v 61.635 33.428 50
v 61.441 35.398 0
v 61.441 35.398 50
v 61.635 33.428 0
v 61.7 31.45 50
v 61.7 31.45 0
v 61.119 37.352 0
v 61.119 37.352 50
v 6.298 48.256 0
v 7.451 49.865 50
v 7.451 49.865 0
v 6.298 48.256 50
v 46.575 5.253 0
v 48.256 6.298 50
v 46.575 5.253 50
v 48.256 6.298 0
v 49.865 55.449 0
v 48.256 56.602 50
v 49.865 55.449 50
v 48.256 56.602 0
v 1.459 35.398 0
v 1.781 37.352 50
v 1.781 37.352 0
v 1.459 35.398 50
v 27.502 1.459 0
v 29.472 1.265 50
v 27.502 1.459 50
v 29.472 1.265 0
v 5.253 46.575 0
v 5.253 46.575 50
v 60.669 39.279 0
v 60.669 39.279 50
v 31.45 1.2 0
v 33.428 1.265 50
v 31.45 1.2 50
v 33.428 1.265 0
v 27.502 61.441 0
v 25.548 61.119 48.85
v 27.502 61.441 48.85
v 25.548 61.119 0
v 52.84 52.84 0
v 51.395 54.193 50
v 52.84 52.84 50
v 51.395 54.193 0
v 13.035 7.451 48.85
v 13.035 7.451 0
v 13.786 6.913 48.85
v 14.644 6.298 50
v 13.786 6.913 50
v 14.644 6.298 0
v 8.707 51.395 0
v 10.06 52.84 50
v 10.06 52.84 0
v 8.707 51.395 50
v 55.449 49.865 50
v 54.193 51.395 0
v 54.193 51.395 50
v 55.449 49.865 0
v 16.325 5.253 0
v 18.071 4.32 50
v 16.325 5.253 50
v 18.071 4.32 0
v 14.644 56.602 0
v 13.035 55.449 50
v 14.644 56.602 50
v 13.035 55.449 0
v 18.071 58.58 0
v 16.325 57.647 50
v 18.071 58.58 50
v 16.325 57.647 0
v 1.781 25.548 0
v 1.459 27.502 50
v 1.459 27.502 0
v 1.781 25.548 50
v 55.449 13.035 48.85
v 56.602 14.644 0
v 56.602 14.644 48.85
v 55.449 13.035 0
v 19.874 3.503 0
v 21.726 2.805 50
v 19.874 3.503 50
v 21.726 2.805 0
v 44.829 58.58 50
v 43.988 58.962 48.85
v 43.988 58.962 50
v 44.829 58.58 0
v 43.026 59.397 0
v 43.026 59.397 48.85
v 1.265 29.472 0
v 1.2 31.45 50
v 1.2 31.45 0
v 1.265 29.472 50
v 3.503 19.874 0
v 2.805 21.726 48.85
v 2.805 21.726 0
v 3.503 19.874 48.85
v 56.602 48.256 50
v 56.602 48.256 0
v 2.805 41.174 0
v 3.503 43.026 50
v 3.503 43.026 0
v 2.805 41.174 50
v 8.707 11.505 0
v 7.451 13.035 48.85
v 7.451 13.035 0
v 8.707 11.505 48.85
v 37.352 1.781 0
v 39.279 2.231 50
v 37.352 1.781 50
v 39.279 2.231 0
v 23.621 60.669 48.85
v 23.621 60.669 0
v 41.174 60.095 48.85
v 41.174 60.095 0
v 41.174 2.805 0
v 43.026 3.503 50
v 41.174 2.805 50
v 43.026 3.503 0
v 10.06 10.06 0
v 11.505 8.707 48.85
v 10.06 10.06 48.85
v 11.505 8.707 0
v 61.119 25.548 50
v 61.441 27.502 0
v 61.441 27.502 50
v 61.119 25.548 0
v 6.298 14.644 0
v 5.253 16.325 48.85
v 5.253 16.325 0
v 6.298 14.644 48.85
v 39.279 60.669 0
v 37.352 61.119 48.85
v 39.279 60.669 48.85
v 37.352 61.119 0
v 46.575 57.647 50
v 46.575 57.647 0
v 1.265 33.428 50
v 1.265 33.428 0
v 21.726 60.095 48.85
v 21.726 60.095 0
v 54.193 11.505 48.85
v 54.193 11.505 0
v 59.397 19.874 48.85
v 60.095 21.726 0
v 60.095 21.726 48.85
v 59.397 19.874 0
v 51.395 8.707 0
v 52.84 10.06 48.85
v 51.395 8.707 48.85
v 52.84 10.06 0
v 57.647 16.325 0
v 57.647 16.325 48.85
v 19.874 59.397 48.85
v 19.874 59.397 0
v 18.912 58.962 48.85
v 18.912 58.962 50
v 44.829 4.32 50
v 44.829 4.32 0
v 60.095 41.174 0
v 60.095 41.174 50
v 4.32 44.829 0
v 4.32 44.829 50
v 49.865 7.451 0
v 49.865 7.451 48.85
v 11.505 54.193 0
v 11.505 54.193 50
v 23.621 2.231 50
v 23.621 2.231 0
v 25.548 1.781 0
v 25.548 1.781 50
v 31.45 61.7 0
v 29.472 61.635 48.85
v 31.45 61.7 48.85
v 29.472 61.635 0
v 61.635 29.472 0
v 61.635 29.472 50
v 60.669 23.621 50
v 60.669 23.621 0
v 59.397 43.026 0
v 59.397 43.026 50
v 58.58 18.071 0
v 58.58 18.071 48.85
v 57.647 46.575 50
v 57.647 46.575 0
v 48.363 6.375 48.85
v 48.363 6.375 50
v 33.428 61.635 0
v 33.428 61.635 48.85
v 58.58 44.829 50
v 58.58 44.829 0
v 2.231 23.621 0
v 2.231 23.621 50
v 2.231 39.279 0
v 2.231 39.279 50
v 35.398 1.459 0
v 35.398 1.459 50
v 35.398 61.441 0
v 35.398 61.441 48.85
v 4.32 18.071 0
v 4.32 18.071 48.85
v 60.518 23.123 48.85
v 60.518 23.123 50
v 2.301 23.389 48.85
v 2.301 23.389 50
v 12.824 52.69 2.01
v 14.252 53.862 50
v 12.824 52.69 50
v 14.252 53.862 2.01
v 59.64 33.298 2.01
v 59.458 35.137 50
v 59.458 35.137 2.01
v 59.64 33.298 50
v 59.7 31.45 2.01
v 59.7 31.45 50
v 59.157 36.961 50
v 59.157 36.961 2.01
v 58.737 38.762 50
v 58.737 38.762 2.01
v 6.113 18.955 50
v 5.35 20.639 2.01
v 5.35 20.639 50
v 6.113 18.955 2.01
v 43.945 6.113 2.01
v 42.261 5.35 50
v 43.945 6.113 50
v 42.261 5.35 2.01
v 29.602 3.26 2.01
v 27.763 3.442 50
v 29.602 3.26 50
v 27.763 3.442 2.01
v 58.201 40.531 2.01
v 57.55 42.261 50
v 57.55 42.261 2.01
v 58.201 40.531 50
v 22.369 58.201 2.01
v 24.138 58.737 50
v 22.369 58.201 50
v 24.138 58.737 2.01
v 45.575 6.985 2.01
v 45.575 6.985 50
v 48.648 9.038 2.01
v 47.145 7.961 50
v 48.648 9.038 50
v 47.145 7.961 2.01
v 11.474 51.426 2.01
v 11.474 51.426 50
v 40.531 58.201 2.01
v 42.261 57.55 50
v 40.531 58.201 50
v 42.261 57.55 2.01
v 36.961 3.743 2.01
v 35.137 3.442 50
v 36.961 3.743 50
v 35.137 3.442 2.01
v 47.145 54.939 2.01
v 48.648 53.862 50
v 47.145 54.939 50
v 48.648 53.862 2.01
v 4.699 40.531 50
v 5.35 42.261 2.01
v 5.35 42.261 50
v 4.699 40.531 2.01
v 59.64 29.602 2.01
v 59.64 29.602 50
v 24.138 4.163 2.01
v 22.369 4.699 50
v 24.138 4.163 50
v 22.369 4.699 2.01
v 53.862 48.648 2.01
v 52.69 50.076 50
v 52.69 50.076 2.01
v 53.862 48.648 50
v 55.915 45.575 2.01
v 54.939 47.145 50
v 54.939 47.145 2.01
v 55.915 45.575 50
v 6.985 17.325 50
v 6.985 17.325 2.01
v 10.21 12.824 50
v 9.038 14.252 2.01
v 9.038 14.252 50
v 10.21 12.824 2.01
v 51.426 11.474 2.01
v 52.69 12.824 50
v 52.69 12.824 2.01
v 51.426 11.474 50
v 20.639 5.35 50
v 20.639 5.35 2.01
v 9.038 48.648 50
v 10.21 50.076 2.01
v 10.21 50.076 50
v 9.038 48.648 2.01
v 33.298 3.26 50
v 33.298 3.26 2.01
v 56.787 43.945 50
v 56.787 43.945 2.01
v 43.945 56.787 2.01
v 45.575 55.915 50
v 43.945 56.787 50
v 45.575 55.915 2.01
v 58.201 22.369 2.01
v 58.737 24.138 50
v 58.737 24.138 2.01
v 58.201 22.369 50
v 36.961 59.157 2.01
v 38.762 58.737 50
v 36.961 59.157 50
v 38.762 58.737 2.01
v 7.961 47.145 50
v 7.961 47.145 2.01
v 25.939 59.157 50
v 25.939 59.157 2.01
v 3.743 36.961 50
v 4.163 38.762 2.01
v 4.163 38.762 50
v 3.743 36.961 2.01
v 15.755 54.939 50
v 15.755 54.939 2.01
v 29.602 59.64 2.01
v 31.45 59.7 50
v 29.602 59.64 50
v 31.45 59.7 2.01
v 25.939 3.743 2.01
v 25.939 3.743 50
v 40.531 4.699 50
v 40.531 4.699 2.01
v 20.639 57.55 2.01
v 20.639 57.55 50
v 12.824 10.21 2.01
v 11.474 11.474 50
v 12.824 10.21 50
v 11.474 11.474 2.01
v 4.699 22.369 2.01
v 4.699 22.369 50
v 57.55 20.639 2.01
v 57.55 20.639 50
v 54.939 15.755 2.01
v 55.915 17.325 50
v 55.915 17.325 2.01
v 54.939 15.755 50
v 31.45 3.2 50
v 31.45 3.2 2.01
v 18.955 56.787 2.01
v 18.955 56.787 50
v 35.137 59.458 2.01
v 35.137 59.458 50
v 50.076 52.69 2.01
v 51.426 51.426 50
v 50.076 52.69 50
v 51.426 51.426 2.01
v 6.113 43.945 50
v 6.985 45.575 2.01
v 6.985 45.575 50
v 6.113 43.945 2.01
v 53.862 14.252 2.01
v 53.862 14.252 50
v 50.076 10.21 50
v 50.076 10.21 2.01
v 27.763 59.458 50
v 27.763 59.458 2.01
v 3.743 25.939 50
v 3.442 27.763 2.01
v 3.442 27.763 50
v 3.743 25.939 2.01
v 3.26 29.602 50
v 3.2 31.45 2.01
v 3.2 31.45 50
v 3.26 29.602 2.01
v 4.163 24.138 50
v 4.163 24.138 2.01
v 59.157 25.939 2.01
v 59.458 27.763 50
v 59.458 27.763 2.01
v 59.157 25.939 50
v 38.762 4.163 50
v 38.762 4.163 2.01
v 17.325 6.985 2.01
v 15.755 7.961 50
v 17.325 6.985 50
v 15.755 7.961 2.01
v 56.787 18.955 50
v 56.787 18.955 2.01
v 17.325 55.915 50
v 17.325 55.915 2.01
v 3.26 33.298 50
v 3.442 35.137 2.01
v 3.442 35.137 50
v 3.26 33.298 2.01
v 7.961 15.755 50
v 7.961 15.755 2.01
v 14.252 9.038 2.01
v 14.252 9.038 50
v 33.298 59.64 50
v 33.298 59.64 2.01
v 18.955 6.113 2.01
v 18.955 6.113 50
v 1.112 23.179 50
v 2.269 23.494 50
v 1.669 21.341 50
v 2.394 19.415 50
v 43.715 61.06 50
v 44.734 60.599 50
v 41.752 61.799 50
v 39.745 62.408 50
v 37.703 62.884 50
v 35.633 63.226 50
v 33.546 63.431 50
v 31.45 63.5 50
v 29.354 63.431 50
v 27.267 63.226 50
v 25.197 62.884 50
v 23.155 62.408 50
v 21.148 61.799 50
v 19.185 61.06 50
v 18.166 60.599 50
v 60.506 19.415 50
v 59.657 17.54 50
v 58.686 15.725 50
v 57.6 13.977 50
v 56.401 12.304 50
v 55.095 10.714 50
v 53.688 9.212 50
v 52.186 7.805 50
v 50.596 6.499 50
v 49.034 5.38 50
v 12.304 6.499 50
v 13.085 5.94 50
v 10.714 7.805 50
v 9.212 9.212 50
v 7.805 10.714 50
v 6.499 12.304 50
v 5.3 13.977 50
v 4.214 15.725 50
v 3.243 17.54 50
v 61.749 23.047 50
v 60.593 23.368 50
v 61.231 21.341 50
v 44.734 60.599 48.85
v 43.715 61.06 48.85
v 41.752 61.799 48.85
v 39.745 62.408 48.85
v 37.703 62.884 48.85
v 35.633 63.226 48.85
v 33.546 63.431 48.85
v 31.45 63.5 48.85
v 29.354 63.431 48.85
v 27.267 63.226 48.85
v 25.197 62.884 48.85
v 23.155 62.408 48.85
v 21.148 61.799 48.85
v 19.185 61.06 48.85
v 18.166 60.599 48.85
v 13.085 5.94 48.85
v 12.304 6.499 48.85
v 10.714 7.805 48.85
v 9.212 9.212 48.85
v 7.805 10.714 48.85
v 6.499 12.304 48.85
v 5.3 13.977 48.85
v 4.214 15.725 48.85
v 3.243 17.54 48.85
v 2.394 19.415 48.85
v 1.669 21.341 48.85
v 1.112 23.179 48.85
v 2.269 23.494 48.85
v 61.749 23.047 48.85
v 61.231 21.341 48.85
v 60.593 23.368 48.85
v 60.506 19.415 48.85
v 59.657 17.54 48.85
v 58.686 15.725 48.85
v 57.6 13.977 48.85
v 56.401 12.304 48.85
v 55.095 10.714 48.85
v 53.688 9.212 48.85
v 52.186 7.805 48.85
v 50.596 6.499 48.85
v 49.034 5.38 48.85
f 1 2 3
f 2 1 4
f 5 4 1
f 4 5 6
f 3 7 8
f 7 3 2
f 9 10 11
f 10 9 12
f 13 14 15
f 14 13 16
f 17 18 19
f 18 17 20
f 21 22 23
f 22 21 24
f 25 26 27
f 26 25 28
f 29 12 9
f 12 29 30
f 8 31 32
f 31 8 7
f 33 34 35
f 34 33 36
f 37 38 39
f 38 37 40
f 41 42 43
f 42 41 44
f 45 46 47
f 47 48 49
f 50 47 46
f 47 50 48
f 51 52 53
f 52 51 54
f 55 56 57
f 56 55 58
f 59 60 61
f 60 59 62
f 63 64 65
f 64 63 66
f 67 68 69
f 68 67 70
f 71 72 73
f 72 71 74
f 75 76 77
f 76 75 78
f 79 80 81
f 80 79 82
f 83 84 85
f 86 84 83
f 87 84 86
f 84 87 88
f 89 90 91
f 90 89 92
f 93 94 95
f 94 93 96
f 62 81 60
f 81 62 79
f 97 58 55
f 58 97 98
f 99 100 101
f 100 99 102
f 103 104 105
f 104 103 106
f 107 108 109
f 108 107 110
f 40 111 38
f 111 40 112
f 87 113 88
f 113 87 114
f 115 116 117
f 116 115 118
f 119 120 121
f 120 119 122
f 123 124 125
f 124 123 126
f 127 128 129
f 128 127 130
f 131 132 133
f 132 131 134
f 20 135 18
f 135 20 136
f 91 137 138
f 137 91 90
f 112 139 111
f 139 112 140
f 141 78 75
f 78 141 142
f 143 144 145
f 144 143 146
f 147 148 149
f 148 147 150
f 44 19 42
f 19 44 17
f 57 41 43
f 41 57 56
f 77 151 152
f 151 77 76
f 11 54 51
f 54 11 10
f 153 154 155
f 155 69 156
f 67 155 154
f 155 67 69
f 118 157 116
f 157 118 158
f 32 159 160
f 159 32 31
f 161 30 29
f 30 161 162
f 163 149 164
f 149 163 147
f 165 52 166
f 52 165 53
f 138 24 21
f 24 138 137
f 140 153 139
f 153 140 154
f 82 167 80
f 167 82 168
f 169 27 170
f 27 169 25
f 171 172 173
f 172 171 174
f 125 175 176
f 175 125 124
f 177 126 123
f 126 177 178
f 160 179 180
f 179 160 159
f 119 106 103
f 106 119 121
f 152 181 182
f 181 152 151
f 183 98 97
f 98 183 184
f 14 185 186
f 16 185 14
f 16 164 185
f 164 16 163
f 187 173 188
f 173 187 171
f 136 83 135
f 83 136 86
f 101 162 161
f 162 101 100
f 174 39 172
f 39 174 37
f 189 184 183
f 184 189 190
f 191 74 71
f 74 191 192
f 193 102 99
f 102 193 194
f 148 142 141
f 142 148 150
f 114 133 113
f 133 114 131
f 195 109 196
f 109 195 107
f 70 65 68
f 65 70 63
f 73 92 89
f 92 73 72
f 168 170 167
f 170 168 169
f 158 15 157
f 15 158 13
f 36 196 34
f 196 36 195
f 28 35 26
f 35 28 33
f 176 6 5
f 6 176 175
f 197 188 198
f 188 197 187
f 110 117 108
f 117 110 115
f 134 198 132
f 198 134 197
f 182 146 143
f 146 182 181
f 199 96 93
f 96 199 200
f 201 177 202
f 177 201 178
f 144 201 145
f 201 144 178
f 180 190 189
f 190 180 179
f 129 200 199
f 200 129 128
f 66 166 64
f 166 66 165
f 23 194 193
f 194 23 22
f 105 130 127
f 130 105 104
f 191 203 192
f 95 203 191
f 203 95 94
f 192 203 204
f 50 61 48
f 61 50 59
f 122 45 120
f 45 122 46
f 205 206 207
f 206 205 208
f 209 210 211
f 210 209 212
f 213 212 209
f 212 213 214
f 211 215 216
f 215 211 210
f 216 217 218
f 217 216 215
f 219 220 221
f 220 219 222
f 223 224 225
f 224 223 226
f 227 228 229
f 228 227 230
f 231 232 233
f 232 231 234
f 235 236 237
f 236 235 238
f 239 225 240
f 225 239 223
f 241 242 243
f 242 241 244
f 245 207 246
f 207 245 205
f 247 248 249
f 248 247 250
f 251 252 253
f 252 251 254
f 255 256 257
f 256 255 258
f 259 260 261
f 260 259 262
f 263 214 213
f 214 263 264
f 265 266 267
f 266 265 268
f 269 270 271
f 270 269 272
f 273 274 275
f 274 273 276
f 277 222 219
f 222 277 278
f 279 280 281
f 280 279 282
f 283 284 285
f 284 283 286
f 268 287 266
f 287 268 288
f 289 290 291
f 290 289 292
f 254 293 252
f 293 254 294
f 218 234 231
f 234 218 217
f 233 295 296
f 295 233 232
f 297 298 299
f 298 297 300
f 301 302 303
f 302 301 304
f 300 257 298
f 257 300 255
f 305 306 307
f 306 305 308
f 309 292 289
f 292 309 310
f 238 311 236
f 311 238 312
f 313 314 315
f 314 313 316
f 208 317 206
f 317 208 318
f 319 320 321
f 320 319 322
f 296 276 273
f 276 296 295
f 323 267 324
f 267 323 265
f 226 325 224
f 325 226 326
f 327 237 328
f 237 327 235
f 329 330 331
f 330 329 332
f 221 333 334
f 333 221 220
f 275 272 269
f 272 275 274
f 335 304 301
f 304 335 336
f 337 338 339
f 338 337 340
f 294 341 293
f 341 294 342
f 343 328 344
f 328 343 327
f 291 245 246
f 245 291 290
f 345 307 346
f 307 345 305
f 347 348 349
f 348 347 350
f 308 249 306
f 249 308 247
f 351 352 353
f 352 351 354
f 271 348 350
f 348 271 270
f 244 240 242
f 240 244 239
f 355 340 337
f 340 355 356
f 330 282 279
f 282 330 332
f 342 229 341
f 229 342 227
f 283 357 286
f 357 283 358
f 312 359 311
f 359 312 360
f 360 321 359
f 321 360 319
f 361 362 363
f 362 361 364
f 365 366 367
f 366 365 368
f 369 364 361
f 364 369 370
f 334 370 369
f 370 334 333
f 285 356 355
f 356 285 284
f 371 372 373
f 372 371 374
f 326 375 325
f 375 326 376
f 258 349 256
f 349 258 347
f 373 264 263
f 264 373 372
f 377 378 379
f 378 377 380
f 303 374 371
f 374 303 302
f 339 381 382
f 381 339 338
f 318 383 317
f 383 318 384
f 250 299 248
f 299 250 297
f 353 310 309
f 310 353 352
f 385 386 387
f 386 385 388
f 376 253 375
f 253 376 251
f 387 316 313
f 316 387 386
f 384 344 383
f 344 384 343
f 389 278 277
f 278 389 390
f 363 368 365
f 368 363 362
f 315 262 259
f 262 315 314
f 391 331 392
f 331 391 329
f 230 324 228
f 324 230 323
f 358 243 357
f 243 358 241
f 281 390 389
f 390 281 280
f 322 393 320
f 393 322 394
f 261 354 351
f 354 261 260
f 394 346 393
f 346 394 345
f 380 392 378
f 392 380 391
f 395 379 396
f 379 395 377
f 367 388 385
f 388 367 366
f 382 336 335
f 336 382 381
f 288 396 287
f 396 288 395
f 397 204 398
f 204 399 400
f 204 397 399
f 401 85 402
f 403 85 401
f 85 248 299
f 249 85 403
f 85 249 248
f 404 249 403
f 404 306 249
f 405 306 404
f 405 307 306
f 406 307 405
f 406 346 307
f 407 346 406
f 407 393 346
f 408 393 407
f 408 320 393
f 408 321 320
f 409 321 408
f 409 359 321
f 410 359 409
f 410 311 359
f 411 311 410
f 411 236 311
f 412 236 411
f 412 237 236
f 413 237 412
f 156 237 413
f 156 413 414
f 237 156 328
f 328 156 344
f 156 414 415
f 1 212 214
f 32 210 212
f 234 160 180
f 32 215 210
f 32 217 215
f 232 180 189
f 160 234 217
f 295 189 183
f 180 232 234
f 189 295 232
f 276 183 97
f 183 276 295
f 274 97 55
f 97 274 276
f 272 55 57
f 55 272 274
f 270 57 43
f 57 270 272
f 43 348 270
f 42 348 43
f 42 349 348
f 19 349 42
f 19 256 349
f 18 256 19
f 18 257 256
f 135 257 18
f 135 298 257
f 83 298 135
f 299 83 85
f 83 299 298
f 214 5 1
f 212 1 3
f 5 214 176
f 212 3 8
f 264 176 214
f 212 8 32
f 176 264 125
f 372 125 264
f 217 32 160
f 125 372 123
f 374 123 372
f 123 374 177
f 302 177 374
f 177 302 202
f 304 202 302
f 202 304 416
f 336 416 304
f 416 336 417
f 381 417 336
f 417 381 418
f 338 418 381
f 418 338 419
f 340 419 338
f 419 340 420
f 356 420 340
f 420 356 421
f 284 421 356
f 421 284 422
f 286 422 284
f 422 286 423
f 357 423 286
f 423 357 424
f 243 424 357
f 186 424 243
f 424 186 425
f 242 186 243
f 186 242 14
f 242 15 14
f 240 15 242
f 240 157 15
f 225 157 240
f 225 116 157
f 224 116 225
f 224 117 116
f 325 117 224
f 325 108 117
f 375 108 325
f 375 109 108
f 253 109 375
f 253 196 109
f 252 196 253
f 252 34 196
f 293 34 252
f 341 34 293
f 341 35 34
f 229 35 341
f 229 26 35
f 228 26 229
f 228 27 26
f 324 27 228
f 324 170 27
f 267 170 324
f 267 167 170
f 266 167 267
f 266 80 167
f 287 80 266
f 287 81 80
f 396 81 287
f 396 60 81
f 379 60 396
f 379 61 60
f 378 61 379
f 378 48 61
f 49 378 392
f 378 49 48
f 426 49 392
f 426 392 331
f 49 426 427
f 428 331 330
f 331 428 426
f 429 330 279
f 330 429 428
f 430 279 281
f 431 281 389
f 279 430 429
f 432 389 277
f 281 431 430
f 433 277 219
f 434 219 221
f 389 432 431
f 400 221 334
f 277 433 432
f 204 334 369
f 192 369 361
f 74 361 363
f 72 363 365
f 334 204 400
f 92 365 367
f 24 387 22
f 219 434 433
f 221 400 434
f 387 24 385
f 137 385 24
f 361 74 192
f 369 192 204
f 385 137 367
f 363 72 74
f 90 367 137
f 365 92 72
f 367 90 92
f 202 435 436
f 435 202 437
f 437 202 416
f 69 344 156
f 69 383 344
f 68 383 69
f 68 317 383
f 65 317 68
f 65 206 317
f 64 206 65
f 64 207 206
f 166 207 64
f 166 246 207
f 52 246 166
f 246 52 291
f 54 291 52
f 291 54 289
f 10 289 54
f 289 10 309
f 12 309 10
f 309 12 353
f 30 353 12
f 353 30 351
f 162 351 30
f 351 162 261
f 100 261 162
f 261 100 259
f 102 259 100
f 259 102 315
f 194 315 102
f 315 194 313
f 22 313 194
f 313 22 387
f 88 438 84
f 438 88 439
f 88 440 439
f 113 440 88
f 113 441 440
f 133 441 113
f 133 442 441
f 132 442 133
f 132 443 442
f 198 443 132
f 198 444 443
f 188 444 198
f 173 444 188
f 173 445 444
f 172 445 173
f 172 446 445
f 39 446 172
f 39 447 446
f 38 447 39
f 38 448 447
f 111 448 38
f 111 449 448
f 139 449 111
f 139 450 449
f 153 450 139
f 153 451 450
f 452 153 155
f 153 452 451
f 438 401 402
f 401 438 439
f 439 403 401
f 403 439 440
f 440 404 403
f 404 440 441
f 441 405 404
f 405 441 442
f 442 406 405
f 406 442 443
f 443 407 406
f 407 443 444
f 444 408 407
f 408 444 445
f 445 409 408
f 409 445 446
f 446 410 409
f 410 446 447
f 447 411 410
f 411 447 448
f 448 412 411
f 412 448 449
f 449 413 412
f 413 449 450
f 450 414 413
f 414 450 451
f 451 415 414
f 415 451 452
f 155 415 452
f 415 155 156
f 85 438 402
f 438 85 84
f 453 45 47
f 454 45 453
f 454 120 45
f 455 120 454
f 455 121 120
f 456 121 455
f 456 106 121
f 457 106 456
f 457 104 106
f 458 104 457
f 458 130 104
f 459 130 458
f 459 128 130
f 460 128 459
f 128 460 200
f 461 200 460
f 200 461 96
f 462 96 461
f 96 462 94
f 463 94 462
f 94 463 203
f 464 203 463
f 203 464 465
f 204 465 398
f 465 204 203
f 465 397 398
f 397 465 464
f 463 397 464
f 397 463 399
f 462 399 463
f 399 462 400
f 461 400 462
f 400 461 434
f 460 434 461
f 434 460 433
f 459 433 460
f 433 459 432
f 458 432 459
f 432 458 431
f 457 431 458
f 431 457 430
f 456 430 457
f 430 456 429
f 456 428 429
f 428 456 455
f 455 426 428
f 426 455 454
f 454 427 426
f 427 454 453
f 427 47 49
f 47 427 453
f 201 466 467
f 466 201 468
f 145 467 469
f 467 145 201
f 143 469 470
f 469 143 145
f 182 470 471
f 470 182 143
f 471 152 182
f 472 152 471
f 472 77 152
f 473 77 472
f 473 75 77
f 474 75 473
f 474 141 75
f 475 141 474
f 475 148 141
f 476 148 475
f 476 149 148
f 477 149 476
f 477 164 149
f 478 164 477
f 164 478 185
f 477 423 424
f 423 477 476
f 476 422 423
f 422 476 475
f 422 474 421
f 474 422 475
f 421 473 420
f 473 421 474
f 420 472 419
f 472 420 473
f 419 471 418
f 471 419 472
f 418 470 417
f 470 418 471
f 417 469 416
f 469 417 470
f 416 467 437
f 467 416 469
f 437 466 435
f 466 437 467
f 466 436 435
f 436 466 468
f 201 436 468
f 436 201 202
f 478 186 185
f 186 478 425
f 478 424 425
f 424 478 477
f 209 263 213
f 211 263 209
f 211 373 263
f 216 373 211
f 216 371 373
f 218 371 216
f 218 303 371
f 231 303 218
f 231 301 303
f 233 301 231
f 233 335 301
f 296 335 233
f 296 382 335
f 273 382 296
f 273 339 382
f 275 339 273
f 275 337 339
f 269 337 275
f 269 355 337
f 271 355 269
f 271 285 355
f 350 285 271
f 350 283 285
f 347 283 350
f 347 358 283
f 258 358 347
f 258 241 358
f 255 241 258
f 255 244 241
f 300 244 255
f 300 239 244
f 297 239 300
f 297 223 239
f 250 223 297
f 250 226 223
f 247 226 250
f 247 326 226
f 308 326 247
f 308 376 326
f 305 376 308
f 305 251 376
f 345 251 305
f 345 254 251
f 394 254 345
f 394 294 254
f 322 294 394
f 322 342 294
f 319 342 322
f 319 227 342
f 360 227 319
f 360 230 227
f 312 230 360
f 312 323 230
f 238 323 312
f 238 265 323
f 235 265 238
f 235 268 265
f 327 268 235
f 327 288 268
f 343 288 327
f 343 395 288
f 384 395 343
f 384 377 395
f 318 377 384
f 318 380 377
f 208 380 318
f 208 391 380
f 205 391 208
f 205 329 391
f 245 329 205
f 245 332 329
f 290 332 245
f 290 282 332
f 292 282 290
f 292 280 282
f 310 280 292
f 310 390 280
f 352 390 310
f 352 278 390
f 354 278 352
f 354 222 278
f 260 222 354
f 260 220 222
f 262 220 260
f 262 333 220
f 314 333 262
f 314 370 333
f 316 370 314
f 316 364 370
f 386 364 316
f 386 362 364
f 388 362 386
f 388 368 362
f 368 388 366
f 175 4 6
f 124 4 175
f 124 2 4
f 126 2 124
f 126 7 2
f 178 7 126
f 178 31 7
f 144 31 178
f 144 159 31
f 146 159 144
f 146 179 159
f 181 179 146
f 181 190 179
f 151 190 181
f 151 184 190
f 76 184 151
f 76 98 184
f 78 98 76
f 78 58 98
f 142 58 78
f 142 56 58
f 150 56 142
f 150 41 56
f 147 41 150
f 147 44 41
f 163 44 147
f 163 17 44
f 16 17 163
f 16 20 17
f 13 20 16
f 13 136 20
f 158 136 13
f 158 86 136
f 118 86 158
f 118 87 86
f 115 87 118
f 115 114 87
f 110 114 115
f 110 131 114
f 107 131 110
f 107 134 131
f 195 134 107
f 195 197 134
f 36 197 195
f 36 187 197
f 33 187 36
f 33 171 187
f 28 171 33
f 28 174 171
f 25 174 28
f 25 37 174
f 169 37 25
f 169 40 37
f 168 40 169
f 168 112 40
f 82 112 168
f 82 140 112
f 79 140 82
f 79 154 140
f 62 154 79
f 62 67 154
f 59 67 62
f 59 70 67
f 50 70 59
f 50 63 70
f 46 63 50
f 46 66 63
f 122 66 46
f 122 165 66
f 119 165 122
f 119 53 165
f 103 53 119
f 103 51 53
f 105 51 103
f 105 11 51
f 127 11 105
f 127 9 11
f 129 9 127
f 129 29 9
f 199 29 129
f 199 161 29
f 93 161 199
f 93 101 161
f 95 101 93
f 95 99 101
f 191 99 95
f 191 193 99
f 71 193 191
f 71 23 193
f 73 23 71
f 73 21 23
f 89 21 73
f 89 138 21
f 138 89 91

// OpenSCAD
// Generated by scadwright. Do not hand-edit —
// edit the Python source and regenerate.

$fn = 96;

translate([31.45, 31.45, 0]) {
    // BronicaS2RearLensCap
    //  cam_barrel_id = 56.5  (default)
    //  cam_barrel_od = 60.5  (default)
    //  cup_od        = 60.5  (default)
    //  cup_wall_thk  = 2  (default)
    //  disc_thk      = 2  (default)
    //  lug_axial     = 1.15  (default)
    //  lug_tube_len  = 7.3  (default)
    //  lugs          = ((90.0, 49.0, 1.8), (214.75, 39.0, 1.2), (324.25, 40.5, 1.2))  (default)
    //  total_h       = 50  (default)
    //  cup_h         = total_h - lug_tube_len = 42.7
    //  cup_tube_len  = cup_h - disc_thk = 40.7
    //  cup_id        = cup_od - 2 * cup_wall_thk = 56.5
    union() {
        translate([0, 0, 2]) {
            // Tube
            //  h  = 40.7  (input)
            //  id = 56.5  (input)
            //  od = 60.5  (input)
            difference() {
                cylinder(h=40.7, r=30.25, center=false);
                translate([0, 0, -0.01]) {
                    scale([1, 1, 1.00049]) {
                        cylinder(h=40.7, r=28.25, center=false);
                    }
                }
            }
        }
        cylinder(h=2.01, r=30.25, center=false);
        translate([0, 0, 42.69]) {
            // CameraMount
            //  barrel_id = 56.5  (input)
            //  length    = 7.31  (input)
            //  lug_axial = 1.15  (input)
            //  lugs      = ((90.0, 49.0, 1.8), (214.75, 39.0, 1.2), (324.25, 40.5, 1.2))  (input)
            //  wall_thk  = 2  (input)
            //  barrel_od = barrel_id + 2 * wall_thk = 60.5
            //  body_or   = barrel_od / 2 = 30.25
            union() {
                // Tube
                //  h  = 7.31  (input)
                //  id = 56.5  (input)
                //  od = 60.5  (input)
                difference() {
                    cylinder(h=7.31, r=30.25, center=false);
                    translate([0, 0, -0.01]) {
                        scale([1, 1, 1.00274]) {
                            cylinder(h=7.31, r=28.25, center=false);
                        }
                    }
                }
                translate([0, 0, 6.16]) {
                    linear_extrude(height=1.15, center=false) {
                        // Arc
                        //  angles  = [65.5, 114.5]  (input)
                        //  r       = 31.15  (input)
                        //  width   = 1.8  (input)
                        //  inner_r = r - width / 2 = 30.25
                        //  outer_r = r + width / 2 = 32.05
                        difference() {
                            // Sector
                            //  angles = [65.5, 114.5]  (input)
                            //  r      = 32.05  (input)
                            intersection() {
                                circle(r=32.05);
                                polygon(points=[[0, 0], [26.5818, 58.3285], [-26.5818, 58.3285]]);
                            }
                            circle(r=30.25);
                        }
                    }
                }
                translate([0, 0, 6.16]) {
                    linear_extrude(height=1.15, center=false) {
                        // Arc
                        //  angles  = [195.25, 234.25]  (input)
                        //  r       = 30.85  (input)
                        //  width   = 1.2  (input)
                        //  inner_r = r - width / 2 = 30.25
                        //  outer_r = r + width / 2 = 31.45
                        difference() {
                            // Sector
                            //  angles = [195.25, 234.25]  (input)
                            //  r      = 31.45  (input)
                            intersection() {
                                circle(r=31.45);
                                polygon(points=[[0, 0], [-60.6851, -16.5447], [-36.7493, -51.048]]);
                            }
                            circle(r=30.25);
                        }
                    }
                }
                translate([0, 0, 6.16]) {
                    linear_extrude(height=1.15, center=false) {
                        // Arc
                        //  angles  = [304, 344.5]  (input)
                        //  r       = 30.85  (input)
                        //  width   = 1.2  (input)
                        //  inner_r = r - width / 2 = 30.25
                        //  outer_r = r + width / 2 = 31.45
                        difference() {
                            // Sector
                            //  angles = [304, 344.5]  (input)
                            //  r      = 31.45  (input)
                            intersection() {
                                circle(r=31.45);
                                polygon(points=[[0, 0], [35.1732, -52.1465], [60.6124, -16.8093]]);
                            }
                            circle(r=30.25);
                        }
                    }
                }
            }
        }
    }
}
